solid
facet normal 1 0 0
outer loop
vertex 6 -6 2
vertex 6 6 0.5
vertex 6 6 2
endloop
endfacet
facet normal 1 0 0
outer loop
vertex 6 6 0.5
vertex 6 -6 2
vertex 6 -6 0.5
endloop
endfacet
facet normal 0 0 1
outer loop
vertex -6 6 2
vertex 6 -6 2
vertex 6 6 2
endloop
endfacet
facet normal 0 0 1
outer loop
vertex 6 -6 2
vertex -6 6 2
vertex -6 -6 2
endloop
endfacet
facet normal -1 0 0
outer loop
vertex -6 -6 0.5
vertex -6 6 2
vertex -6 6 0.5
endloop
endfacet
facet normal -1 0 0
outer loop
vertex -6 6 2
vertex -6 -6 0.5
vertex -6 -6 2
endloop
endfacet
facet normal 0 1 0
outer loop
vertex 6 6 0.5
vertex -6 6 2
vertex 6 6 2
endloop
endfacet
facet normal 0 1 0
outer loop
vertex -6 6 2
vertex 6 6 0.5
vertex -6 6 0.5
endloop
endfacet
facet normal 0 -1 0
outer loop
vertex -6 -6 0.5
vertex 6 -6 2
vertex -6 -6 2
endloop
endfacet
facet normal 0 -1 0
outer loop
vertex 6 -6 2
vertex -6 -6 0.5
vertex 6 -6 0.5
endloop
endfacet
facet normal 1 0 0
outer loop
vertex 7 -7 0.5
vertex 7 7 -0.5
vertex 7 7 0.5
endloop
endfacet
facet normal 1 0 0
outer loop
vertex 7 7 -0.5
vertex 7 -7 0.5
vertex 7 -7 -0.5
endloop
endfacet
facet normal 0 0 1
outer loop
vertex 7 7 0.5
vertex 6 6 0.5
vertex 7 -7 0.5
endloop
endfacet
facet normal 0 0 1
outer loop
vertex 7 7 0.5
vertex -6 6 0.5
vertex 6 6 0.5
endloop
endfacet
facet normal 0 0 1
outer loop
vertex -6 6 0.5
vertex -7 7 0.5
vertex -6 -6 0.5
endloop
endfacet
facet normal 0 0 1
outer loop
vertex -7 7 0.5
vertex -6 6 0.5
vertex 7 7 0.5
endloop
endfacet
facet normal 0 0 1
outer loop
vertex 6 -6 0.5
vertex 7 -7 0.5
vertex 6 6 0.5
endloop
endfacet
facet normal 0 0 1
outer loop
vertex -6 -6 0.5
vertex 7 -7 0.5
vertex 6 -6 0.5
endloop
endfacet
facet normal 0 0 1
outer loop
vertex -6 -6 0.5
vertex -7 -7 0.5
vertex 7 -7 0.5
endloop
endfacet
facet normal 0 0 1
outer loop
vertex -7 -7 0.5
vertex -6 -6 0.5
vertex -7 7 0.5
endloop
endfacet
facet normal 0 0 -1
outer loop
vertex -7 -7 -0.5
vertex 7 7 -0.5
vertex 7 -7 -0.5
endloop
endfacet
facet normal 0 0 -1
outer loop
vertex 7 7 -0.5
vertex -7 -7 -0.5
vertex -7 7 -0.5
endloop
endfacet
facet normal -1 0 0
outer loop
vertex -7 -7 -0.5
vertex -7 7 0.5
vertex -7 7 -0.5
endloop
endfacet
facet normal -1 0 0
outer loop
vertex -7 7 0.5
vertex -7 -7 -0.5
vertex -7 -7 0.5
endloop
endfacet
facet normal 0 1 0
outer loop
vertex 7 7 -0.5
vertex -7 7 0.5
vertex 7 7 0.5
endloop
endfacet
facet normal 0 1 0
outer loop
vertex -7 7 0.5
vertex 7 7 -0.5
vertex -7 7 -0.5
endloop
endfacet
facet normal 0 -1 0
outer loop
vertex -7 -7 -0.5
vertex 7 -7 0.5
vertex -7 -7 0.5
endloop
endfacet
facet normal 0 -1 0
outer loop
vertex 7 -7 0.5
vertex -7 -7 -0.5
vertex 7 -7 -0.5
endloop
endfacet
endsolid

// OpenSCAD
translate([0,0,1]) cube([12,12,2], center=true);
cube([14,14,1], center=true);
